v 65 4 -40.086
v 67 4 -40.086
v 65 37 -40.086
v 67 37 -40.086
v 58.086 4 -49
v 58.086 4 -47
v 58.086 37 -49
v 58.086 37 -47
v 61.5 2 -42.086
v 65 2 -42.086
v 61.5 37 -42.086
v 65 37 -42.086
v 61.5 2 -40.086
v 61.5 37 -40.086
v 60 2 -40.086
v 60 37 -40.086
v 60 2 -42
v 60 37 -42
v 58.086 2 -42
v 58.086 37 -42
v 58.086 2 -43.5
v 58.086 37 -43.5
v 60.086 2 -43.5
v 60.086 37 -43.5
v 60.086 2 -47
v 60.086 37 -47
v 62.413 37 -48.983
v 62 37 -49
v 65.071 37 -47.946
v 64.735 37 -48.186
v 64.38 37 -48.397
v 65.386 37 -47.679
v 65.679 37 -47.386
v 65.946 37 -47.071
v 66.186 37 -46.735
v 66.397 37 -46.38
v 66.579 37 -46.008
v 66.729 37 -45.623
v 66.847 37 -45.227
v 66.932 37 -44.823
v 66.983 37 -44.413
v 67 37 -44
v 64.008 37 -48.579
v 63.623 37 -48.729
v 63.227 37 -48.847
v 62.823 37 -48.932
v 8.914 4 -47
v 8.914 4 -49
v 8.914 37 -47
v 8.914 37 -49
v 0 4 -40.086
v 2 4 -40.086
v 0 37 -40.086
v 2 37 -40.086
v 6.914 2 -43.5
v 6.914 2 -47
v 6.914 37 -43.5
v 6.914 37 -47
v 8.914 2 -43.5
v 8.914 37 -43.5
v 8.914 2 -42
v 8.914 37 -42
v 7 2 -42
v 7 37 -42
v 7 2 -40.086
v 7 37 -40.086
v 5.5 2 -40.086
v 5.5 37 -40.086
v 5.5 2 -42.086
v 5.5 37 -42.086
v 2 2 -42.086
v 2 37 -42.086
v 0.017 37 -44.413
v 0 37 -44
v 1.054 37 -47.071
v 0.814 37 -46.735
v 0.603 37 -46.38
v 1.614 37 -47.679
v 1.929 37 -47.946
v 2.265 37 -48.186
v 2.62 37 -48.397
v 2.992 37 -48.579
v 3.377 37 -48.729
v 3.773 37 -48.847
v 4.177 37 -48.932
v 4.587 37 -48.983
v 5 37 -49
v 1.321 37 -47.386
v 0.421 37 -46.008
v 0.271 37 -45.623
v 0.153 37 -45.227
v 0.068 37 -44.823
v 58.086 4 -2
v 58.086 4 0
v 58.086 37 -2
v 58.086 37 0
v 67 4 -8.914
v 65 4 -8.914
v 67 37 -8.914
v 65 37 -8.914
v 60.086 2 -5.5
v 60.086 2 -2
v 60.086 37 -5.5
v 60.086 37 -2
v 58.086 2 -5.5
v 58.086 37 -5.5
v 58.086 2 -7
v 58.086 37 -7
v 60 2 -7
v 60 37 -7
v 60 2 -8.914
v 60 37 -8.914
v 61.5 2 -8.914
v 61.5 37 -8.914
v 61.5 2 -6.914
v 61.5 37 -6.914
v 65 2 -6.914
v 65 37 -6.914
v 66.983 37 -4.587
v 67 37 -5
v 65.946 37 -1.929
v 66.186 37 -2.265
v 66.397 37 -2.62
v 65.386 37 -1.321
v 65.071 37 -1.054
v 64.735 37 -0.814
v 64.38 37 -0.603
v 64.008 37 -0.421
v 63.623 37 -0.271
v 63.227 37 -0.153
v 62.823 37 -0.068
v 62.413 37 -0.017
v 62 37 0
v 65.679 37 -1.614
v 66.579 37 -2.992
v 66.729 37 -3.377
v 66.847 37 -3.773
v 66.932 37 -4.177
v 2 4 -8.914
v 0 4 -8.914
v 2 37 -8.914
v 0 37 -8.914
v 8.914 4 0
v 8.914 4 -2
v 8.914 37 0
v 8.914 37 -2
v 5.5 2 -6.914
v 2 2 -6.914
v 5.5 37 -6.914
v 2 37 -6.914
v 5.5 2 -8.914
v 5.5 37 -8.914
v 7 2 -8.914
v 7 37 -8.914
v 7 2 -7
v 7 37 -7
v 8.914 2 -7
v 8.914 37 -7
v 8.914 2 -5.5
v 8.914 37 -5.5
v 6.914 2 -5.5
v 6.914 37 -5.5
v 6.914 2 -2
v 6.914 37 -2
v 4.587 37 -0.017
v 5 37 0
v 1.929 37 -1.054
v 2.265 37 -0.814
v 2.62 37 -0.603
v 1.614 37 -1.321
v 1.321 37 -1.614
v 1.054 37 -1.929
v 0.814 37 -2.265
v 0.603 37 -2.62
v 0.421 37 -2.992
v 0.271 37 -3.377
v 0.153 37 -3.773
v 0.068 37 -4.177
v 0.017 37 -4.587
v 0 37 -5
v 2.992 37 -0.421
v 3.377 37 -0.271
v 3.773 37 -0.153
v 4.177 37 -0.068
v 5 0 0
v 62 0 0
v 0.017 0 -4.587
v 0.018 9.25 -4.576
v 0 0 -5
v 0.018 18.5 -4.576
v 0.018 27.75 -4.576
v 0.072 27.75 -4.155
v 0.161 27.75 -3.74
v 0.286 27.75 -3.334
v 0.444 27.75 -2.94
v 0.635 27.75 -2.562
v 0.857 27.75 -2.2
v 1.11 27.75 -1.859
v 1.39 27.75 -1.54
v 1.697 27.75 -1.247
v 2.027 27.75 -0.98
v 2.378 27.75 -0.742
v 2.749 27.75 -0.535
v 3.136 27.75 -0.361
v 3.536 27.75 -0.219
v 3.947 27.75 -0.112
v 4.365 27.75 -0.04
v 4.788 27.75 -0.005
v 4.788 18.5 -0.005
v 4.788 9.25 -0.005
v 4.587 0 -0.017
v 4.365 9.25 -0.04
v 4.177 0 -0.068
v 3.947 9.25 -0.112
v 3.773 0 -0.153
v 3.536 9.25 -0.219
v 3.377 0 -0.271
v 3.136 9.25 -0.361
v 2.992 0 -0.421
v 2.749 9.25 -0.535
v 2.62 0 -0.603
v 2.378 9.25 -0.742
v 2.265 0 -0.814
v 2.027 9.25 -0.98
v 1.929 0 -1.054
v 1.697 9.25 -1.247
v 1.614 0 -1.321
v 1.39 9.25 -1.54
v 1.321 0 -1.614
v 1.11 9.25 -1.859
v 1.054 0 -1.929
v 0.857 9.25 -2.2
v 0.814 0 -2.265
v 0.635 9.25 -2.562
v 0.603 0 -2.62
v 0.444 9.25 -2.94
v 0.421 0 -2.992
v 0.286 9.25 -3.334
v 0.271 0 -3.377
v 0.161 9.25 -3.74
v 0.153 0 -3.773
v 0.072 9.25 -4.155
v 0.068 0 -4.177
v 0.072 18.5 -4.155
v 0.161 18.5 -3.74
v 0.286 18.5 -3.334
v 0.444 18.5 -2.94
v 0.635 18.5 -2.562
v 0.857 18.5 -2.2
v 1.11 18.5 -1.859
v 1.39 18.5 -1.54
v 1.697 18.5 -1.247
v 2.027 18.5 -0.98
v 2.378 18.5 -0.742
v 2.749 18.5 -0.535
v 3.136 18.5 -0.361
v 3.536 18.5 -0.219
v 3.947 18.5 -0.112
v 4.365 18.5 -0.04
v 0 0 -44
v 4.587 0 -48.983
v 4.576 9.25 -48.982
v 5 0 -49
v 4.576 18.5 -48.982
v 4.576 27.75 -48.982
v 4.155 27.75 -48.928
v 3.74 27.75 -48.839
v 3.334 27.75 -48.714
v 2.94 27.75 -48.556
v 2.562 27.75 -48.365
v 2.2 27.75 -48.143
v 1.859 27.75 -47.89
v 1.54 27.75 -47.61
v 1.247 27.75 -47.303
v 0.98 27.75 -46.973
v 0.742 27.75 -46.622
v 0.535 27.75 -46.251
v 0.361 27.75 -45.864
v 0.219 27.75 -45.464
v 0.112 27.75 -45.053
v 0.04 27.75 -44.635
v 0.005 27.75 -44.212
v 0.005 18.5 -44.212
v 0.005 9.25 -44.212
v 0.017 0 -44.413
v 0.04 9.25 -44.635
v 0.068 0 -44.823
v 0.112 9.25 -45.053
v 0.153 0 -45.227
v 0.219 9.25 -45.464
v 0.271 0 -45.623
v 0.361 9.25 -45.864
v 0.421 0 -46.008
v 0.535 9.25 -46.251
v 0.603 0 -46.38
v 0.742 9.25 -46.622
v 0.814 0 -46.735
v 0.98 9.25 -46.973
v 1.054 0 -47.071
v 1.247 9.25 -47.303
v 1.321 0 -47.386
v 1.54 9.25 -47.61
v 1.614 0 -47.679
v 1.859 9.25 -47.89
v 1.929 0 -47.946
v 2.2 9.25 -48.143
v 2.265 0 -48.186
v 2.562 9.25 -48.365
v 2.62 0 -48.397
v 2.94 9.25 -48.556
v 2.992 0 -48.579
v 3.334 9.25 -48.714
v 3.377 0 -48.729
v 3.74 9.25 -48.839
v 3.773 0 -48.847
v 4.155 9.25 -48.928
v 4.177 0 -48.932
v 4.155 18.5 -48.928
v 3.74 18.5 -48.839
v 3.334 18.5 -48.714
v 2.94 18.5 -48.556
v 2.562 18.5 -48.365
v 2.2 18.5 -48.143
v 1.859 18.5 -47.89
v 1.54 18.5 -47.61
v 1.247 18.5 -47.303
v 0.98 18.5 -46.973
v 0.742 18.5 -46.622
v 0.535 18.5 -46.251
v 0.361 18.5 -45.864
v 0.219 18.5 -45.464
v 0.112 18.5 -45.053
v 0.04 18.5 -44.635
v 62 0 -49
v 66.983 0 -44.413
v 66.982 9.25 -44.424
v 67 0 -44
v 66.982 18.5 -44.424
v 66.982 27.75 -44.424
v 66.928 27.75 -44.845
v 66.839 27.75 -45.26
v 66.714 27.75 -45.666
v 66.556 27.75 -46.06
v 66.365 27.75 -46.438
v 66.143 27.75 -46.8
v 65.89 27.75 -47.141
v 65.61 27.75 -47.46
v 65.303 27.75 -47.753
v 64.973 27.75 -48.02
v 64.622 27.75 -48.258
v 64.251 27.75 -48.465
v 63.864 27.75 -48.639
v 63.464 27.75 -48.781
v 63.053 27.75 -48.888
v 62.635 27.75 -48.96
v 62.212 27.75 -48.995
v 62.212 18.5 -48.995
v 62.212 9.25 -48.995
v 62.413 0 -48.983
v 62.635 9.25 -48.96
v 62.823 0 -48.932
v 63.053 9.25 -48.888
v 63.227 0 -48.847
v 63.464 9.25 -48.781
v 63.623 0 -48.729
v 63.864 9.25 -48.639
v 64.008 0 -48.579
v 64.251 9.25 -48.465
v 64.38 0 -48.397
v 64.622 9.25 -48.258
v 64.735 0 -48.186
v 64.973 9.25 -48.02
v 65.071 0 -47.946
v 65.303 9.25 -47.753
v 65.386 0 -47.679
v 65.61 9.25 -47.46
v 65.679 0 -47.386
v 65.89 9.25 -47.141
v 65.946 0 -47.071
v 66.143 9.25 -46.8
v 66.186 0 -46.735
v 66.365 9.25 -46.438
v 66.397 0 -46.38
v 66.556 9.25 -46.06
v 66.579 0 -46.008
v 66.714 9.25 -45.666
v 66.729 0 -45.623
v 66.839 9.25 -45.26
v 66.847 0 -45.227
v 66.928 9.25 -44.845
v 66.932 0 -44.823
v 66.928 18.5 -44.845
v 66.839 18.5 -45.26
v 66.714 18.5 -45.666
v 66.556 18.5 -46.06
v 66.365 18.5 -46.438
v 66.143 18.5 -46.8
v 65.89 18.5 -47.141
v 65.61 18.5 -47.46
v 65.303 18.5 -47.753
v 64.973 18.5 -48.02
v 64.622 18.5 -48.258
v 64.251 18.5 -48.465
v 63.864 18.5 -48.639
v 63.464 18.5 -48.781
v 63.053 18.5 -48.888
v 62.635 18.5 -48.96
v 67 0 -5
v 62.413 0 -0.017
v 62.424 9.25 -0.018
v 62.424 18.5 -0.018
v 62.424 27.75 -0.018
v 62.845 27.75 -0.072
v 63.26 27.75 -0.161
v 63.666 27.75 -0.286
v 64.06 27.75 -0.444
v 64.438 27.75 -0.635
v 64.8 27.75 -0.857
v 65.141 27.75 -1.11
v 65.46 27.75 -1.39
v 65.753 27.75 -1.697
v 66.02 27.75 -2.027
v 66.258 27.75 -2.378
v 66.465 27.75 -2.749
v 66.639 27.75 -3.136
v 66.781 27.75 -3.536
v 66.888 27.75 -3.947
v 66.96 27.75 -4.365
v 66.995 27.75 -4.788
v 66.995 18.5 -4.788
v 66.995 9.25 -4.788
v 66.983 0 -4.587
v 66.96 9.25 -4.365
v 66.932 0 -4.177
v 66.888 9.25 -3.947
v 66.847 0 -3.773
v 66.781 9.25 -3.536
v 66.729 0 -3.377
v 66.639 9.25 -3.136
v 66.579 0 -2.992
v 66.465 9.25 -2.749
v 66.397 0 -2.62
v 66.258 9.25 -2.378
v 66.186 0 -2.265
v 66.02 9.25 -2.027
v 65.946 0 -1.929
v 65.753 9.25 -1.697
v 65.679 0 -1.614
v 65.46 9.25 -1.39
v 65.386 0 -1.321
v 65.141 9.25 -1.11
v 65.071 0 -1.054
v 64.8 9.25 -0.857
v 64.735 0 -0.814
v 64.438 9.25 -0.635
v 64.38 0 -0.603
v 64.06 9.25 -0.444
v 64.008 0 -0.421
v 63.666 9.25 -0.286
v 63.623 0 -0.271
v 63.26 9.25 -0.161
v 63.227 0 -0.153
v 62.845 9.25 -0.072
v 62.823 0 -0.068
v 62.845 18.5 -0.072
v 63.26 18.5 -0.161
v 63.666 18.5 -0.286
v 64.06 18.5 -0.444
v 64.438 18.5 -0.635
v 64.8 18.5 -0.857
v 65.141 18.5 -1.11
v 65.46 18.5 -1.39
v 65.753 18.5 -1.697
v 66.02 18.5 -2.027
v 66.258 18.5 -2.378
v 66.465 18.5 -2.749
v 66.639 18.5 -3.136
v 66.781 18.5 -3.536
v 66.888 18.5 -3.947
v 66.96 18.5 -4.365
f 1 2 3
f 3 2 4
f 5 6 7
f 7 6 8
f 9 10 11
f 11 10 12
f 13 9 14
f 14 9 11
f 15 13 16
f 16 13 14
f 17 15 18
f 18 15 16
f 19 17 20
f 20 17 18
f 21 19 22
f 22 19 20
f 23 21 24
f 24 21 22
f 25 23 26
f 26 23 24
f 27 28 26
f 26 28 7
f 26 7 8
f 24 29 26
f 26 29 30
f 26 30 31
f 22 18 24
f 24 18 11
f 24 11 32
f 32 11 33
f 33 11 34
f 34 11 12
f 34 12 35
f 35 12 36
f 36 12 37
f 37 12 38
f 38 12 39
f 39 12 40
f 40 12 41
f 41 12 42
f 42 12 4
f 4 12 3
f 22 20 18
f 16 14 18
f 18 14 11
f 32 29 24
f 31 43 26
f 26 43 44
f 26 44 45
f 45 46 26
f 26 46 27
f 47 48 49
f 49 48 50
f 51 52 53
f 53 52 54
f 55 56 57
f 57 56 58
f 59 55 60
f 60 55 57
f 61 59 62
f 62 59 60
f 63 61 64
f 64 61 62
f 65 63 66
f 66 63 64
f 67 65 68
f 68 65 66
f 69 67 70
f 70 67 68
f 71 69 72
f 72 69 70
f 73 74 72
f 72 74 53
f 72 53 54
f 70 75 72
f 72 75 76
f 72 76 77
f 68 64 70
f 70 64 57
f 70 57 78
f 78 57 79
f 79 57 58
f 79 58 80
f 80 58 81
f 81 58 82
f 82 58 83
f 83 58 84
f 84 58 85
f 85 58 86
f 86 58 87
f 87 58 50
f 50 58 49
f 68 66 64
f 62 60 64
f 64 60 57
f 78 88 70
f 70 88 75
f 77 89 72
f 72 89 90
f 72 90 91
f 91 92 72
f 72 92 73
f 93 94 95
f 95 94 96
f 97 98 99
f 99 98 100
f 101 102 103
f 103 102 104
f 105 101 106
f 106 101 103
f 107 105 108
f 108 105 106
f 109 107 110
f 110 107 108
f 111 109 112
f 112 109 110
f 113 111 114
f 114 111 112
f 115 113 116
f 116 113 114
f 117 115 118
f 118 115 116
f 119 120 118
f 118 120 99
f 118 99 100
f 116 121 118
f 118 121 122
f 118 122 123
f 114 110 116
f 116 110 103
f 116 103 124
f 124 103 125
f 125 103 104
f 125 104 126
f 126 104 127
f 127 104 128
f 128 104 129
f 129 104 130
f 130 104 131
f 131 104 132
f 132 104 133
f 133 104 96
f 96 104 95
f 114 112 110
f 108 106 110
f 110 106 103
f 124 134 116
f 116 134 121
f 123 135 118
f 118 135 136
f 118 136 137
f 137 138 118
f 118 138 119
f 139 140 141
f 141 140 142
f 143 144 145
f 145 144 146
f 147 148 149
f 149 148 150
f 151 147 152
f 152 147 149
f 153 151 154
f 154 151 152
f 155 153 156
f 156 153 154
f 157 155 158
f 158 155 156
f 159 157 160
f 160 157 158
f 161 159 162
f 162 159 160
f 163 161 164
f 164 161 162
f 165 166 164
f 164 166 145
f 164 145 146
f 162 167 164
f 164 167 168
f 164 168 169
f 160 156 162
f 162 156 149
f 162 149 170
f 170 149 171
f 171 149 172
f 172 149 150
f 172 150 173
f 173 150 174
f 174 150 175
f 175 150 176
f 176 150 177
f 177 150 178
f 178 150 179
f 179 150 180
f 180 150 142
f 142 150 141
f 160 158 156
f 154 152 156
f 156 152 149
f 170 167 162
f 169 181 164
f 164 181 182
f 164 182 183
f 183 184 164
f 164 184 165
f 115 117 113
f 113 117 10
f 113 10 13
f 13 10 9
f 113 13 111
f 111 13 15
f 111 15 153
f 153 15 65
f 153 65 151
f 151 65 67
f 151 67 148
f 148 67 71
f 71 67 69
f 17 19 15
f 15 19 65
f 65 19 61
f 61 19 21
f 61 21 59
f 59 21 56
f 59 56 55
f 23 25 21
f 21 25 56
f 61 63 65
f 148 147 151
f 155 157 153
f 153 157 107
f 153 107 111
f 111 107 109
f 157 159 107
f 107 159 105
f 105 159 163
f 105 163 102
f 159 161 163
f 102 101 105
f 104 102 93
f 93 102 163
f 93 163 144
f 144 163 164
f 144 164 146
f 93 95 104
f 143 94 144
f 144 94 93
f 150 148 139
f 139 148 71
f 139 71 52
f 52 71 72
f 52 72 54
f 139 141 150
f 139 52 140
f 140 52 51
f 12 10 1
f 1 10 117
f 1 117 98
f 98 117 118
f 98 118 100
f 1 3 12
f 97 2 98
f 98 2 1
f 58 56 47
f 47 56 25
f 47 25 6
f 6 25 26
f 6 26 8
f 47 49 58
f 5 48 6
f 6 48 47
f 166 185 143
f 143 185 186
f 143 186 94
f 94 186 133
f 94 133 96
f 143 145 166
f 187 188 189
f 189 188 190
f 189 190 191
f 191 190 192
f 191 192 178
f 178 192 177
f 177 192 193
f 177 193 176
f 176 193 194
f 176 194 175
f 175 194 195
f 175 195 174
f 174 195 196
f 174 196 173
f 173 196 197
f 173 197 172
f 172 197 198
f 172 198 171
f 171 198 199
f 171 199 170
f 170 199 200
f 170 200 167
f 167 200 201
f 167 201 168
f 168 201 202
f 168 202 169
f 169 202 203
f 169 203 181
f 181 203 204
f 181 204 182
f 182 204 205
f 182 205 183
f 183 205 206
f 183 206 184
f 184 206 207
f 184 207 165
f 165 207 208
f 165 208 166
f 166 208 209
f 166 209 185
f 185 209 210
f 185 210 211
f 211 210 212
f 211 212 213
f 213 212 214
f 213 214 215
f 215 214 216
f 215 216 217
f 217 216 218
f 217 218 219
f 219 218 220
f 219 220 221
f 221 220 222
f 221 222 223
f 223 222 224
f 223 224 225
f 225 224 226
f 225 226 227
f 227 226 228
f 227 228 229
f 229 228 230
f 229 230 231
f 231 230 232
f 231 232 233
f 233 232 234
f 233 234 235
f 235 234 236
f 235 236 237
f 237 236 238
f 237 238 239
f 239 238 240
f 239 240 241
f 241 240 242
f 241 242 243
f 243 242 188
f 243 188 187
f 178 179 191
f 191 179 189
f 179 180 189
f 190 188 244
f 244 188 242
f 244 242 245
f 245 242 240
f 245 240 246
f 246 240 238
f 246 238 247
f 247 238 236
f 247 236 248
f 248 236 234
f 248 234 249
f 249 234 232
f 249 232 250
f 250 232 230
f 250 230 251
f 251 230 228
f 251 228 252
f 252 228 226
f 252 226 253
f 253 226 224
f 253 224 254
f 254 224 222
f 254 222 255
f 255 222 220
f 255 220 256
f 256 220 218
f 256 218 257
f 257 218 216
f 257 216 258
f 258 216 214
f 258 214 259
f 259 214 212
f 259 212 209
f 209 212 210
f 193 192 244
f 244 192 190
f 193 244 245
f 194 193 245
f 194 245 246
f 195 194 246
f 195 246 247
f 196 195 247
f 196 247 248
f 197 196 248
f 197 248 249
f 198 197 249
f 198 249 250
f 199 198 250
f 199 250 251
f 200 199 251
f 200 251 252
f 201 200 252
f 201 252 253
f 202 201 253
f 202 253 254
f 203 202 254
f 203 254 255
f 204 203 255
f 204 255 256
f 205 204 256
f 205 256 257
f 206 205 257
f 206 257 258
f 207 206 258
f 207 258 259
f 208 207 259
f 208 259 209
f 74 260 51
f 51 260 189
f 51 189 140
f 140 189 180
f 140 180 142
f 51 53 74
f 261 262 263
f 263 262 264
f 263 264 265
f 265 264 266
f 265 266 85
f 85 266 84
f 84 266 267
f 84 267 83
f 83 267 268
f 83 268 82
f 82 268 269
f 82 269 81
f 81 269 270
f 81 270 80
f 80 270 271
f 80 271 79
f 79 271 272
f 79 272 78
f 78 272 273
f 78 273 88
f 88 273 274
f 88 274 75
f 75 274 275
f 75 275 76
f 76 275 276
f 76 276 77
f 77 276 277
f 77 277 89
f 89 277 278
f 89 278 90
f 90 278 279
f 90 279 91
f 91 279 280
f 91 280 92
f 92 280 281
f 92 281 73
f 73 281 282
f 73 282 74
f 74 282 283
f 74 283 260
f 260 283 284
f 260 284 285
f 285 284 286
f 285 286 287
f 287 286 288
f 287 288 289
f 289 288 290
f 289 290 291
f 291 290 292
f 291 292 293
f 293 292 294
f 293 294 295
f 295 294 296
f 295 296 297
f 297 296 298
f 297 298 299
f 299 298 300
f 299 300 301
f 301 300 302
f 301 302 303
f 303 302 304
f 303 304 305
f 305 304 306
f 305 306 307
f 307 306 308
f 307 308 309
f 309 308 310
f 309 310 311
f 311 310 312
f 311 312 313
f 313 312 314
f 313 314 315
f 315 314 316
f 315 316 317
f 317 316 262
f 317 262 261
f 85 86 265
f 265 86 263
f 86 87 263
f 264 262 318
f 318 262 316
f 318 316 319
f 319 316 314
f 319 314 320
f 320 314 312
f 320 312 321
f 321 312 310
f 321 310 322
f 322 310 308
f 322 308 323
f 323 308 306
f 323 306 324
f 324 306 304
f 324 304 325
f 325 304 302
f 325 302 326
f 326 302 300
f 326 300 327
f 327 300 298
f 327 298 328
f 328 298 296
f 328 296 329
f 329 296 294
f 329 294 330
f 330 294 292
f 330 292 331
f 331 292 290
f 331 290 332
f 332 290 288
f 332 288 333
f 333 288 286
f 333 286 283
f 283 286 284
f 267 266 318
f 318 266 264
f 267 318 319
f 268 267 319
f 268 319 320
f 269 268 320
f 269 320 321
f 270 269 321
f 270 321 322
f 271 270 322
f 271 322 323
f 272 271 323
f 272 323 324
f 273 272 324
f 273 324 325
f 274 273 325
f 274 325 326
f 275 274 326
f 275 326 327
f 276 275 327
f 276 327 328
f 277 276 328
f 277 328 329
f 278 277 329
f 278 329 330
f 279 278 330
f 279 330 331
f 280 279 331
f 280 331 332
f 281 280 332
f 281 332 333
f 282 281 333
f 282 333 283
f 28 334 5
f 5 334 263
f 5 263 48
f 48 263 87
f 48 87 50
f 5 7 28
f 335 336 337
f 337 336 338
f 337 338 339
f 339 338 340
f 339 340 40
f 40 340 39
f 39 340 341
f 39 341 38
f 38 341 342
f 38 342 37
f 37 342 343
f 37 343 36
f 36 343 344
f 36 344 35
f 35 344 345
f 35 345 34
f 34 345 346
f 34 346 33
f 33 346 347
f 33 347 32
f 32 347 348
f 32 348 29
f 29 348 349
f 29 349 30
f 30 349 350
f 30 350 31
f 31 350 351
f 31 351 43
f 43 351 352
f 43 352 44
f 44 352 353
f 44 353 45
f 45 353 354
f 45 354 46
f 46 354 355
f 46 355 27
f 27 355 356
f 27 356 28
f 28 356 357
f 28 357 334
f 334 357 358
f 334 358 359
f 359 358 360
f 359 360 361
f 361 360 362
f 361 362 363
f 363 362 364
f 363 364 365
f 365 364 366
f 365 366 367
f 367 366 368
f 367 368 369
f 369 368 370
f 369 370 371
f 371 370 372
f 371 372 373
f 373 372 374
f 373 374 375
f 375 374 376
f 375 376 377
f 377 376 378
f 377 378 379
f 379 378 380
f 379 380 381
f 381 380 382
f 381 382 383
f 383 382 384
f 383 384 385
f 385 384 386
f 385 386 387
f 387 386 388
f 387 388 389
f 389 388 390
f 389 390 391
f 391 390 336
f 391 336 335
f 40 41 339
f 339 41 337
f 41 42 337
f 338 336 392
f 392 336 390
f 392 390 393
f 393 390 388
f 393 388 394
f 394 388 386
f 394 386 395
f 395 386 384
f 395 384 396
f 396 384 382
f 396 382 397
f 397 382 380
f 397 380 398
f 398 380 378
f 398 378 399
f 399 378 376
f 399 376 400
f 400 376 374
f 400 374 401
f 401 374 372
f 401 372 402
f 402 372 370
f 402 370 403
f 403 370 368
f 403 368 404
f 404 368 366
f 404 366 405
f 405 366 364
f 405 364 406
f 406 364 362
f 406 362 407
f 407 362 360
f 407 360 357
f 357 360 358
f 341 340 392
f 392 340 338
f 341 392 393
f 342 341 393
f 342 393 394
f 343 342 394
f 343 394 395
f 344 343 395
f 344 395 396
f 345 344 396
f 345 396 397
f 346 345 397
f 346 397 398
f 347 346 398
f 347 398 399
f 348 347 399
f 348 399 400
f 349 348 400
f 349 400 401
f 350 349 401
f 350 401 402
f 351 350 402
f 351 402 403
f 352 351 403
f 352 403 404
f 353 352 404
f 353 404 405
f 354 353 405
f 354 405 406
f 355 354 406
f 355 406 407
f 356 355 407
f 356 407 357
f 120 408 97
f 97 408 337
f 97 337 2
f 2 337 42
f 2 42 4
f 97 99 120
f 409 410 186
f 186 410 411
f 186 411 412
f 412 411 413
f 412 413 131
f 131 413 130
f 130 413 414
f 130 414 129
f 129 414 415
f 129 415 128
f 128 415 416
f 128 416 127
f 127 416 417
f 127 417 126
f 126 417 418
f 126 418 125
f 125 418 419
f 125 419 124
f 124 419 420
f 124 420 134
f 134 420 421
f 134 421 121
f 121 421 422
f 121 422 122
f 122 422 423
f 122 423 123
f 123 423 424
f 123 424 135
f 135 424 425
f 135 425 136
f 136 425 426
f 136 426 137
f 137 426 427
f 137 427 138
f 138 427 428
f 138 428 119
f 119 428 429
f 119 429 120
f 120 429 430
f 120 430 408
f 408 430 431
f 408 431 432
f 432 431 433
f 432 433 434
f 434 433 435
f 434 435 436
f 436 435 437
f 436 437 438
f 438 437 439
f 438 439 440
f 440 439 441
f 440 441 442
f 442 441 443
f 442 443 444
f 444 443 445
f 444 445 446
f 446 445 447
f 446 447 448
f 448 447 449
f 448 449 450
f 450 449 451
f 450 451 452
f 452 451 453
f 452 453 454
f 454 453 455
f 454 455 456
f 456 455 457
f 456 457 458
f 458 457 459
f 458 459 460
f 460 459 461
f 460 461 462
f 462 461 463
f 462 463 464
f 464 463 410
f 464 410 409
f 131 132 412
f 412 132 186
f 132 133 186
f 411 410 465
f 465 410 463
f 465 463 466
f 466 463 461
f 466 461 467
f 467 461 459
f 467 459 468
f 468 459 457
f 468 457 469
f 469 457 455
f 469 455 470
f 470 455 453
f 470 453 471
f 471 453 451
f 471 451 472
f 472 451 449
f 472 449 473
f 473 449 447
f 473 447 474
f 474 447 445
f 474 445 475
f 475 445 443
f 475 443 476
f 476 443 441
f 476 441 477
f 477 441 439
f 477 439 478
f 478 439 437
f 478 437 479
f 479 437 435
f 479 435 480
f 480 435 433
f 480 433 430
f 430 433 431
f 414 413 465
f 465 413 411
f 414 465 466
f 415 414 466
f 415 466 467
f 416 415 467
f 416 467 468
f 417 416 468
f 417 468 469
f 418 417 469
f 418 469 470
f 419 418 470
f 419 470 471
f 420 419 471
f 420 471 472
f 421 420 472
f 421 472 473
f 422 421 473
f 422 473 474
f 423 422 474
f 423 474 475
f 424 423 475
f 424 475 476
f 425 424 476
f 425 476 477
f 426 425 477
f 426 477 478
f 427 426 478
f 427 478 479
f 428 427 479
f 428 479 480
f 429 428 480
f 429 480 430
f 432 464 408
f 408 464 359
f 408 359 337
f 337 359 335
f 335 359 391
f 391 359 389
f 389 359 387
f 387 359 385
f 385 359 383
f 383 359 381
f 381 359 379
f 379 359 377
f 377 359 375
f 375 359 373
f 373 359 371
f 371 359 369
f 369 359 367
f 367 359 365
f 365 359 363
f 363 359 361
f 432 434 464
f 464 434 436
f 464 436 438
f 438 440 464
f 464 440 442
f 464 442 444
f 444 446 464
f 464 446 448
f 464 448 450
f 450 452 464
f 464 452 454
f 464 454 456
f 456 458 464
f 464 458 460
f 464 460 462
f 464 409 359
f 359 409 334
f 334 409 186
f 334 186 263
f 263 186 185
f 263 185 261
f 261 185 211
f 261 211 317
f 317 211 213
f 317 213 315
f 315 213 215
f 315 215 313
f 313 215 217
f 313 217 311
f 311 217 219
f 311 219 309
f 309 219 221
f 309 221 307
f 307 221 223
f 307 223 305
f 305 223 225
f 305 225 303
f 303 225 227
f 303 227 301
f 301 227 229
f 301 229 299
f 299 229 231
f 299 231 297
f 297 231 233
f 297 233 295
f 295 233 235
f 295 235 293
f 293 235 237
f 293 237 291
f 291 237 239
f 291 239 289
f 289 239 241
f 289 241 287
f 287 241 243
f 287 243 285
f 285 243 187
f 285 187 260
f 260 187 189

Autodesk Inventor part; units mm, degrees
ref_plane "YZ Plane" through (0, 0, 0) normal (1, 0, 0) x (0, 1, 0)
ref_plane "XZ Plane" through (0, 0, 0) normal (0, 1, 0) x (-1, 0, 0)
ref_plane "XY Plane" through (0, 0, 0) normal (0, 0, 1) x (1, 0, 0)
sketch "Skizze1" plane through (0, 0, 0) normal (0, 1, 0) x (-1, 0, 0)
  line L0 (-5, 0) -> (-62, 0)
  line L1 (-67, -5) -> (-67, -44)
  line L2 (-62, -49) -> (-5, -49)
  line L3 (0, -44) -> (0, -5)
  arc A0 (0, -5) -> (-5, 0) centre (-5, -5) ccw
  arc A1 (-62, 0) -> (-67, -5) centre (-62, -5) ccw
  arc A2 (-67, -44) -> (-62, -49) centre (-62, -44) ccw
  arc A3 (-5, -49) -> (0, -44) centre (-5, -44) ccw
  point P0 (0, 0)
  point P1 (-67, -49)
  point P2 (-67, 0)
  point P3 (0, -49)
  dimension "d0" = 67
  dimension "d1" = 49
  dimension "d2" = 5
extrude "Extrusion1" add sketch "Skizze1" along normal blind 2
sketch "Skizze2" plane through (0, 2, 0) normal (0, 1, 0) x (1, 0, 0)
  arc A0 (62, 0) -> (67, 5) centre (62, 5) ccw projected
  line L0 (67, 5) -> (67, 44) projected
  arc A1 (67, 44) -> (62, 49) centre (62, 44) ccw projected
  line L1 (62, 49) -> (5, 49) projected
  arc A2 (5, 49) -> (0, 44) centre (5, 44) ccw projected
  line L2 (0, 44) -> (0, 5) projected
  arc A3 (0, 5) -> (5, 0) centre (5, 5) ccw projected
  line L3 (5, 0) -> (62, 0) projected
  line L4 (6.9142, 5.5) -> (60.0858, 5.5)
  line L5 (60.0858, 5.5) -> (60.0858, 2)
  line L6 (60.0858, 2) -> (6.9142, 2)
  line L7 (6.9142, 2) -> (6.9142, 5.5)
  line L8 (61.5, 6.9142) -> (65, 6.9142)
  line L9 (65, 6.9142) -> (65, 42.0858)
  line L10 (65, 42.0858) -> (61.5, 42.0858)
  line L11 (61.5, 42.0858) -> (61.5, 6.9142)
  line L12 (60.0858, 47) -> (6.9142, 47)
  line L13 (6.9142, 47) -> (6.9142, 43.5)
  line L14 (6.9142, 43.5) -> (60.0858, 43.5)
  line L15 (60.0858, 43.5) -> (60.0858, 47)
  line L16 (2, 42.0858) -> (5.5, 42.0858)
  line L17 (5.5, 42.0858) -> (5.5, 6.9142)
  line L18 (5.5, 6.9142) -> (2, 6.9142)
  line L19 (2, 6.9142) -> (2, 42.0858)
  line L20 (33.5, 47) -> (33.5, 49) construction
  line L21 (65, 24.5) -> (67, 24.5) construction
  line L22 (62, 49) -> (5, 49) construction
  line L23 (33.5, 2) -> (33.5, 0) construction
  line L24 (5, 0) -> (62, 0) construction
  line L25 (2, 24.5) -> (0, 24.5) construction
  line L26 (0, 44) -> (0, 5) construction
  line L27 (5.5, 40.0858) -> (7, 40.0858)
  line L28 (7, 40.0858) -> (7, 42)
  line L29 (7, 42) -> (8.9142, 42)
  line L30 (8.9142, 42) -> (8.9142, 43.5)
  line L31 (61.5, 40.0858) -> (60, 40.0858)
  line L32 (60, 40.0858) -> (60, 42)
  line L33 (60, 42) -> (58.0858, 42)
  line L34 (58.0858, 42) -> (58.0858, 43.5)
  line L35 (61.5, 8.9142) -> (60, 8.9142)
  line L36 (60, 8.9142) -> (60, 7)
  line L37 (60, 7) -> (58.0858, 7)
  line L38 (58.0858, 7) -> (58.0858, 5.5)
  line L39 (8.9142, 5.5) -> (8.9142, 7)
  line L40 (8.9142, 7) -> (7, 7)
  line L41 (7, 7) -> (7, 8.9142)
  line L42 (7, 8.9142) -> (5.5, 8.9142)
  line L43 (2, 40.0858) -> (0, 40.0858)
  line L44 (65, 40.0858) -> (67, 40.0858)
  line L45 (65, 8.9142) -> (67, 8.9142)
  line L46 (58.0858, 2) -> (58.0858, 0)
  line L47 (8.9142, 2) -> (8.9142, 0)
  line L48 (2, 8.9142) -> (0, 8.9142)
  line L49 (8.9142, 47) -> (8.9142, 49)
  line L50 (58.0858, 47) -> (58.0858, 49)
  point P0 (0, 0)
  point P1 (58.0858, 0)
  point P2 (8.9142, 0)
  dimension "d5" = 3.5
  dimension "d6" = 2
  dimension "d7" = 35
  dimension "d9" = 2
  dimension "d10" = 2
  dimension "d11" = 2
extrude "Extrusion2" add sketch "Skizze2" along normal blind 2 contours L3 L47 L6 L46 | L45 L9 L44 L0 | L2 L43 L19 L48 | L50 L12 L49 L1
extrude "Extrusion3" add sketch "Skizze2" along normal blind 35 contours L3 L46 L6 L5 L4 L38 L37 L36 L35 L11 L8 L9 L45 L0 A0 | L3 A3 L2 L48 L19 L18 L17 L42 L41 L40 L39 L4 L7 L6 L47 | L44 L9 L10 L11 L31 L32 L33 L34 L14 L15 L12 L50 L1 A1 L0 | L2 A2 L1 L49 L12 L13 L14 L30 L29 L28 L27 L17 L16 L19 L43
equation "\"d10\" = d9"
properties part number "small_bottom"
